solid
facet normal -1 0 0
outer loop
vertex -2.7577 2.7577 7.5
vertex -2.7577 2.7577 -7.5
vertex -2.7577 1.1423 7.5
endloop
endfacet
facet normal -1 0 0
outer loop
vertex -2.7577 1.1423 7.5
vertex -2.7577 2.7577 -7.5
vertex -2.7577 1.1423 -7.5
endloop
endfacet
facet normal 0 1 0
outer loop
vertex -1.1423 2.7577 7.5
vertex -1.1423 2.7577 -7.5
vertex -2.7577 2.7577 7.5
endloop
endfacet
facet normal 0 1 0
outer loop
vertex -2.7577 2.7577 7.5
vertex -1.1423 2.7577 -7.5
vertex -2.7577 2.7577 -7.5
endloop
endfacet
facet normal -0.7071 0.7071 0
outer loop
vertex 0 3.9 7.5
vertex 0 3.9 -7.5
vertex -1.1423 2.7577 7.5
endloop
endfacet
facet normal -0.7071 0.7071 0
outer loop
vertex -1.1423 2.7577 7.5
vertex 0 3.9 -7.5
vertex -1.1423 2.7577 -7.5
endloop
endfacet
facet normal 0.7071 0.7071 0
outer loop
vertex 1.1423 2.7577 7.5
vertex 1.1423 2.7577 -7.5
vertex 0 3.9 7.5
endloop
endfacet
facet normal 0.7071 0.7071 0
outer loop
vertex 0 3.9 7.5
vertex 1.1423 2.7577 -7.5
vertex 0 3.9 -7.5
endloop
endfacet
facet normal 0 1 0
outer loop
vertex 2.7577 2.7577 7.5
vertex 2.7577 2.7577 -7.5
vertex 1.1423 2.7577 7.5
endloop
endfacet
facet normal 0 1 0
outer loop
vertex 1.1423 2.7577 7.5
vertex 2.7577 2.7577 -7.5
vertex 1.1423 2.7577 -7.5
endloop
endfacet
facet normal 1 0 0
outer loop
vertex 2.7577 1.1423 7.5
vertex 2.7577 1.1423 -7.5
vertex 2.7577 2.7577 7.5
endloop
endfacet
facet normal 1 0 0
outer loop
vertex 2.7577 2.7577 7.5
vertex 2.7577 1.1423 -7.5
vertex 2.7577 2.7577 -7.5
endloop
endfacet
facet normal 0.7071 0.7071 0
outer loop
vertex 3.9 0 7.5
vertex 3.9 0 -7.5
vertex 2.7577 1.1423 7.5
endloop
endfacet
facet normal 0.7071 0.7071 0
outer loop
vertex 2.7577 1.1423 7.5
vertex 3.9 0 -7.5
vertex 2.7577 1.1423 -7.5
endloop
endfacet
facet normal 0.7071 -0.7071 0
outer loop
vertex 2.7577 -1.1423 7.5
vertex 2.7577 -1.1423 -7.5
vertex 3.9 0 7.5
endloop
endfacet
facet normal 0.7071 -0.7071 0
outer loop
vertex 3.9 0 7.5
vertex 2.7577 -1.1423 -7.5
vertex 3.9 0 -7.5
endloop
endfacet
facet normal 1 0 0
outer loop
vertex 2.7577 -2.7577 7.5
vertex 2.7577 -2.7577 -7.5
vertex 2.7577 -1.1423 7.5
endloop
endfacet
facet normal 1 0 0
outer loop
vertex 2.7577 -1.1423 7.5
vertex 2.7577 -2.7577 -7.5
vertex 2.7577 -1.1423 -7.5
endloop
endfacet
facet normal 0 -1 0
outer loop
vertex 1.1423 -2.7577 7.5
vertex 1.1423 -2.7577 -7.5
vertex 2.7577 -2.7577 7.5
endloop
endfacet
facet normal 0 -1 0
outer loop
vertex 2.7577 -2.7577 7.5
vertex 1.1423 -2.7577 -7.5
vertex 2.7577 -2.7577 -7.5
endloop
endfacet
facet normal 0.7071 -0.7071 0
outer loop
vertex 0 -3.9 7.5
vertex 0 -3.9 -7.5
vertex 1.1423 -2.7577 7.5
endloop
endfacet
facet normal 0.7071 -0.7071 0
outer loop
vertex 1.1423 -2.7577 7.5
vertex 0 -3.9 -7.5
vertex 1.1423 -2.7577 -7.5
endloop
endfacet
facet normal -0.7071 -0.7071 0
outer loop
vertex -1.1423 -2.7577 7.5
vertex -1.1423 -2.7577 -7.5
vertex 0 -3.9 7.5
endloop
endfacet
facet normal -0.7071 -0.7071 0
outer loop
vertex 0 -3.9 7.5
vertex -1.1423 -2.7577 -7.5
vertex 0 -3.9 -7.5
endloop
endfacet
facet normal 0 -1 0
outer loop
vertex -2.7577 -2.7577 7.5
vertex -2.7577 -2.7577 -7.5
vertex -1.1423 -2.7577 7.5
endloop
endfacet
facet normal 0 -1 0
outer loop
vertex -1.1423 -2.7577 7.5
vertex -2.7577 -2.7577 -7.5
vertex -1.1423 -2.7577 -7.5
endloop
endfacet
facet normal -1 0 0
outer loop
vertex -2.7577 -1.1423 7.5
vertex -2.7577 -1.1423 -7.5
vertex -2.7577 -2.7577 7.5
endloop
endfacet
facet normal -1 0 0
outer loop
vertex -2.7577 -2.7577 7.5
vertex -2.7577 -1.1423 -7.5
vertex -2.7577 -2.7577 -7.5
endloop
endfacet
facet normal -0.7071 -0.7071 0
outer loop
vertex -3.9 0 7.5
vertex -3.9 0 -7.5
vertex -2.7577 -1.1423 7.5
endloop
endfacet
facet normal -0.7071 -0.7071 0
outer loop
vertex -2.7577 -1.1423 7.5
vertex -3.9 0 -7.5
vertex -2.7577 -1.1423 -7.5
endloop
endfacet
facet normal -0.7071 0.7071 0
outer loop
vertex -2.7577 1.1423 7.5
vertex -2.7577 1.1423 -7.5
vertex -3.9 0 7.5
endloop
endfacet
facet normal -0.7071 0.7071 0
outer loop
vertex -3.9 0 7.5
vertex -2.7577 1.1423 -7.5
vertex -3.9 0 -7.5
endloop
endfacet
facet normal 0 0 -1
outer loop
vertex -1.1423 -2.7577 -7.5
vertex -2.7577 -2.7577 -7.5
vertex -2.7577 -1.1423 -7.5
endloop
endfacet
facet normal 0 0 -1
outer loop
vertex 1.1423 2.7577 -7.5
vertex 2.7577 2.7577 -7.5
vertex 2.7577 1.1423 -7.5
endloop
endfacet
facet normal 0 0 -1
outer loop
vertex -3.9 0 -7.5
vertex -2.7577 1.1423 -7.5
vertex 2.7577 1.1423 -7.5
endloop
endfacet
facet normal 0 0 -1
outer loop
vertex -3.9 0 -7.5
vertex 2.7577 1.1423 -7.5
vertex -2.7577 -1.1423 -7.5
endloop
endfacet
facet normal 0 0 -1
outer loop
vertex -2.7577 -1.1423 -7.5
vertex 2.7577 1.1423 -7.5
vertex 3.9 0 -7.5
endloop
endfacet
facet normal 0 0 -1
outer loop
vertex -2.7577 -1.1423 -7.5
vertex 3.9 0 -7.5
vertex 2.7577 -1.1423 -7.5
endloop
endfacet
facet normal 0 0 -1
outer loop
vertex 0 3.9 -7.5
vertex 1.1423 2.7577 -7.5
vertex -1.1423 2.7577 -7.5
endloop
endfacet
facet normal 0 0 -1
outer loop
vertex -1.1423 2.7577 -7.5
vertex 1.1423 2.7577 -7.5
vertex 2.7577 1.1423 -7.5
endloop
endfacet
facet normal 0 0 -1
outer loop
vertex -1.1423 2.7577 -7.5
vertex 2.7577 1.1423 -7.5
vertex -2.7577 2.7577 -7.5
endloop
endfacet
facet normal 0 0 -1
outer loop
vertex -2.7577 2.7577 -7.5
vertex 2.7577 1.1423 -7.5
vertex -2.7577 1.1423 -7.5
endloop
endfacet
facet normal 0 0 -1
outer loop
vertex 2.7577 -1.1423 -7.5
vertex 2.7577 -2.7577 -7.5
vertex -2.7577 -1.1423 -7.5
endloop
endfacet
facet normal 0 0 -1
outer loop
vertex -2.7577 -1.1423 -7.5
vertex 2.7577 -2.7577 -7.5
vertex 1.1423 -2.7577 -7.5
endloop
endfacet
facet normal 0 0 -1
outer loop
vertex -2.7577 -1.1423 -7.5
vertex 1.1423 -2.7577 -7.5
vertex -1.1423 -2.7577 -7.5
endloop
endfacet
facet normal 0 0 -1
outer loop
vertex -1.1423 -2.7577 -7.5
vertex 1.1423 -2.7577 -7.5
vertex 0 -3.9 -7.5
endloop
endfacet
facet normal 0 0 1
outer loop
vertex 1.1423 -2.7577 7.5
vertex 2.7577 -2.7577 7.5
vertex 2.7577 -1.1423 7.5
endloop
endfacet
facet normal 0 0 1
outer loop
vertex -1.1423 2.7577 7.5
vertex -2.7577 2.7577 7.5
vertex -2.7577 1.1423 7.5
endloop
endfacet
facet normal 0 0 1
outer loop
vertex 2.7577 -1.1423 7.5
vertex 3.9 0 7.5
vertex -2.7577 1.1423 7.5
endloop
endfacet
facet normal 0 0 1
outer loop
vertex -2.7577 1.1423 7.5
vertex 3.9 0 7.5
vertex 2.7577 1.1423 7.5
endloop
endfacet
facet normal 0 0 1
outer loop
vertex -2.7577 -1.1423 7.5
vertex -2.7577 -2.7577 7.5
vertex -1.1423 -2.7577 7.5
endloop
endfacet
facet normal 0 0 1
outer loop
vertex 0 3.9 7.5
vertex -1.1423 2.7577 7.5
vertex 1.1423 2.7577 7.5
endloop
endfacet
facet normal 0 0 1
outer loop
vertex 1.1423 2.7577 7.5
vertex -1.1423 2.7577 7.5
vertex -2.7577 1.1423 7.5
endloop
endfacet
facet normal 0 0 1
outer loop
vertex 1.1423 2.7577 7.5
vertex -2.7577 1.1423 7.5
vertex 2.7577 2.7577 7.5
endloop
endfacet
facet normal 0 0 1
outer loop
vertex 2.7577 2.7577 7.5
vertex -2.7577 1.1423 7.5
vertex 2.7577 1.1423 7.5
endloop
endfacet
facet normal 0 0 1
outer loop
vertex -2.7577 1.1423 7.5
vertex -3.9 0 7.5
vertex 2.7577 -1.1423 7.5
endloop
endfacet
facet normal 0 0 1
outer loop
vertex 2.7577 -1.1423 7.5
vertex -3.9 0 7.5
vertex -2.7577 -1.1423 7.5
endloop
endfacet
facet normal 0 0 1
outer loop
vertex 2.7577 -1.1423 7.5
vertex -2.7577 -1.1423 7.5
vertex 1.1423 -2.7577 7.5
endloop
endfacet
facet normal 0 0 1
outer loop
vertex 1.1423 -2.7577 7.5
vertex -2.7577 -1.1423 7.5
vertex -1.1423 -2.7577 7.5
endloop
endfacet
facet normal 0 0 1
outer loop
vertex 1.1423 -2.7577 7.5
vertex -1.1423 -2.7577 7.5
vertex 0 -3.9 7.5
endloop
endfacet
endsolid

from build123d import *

# Parameters (mm, degrees)
BOSS_EXTRUDE1_DEPTH      = 7.5
BOSS_EXTRUDE1_DEPTH_BACK = 7.5


with BuildPart() as part:
    # Sketch1 → Boss-Extrude1 (new, two sides: drawn at the far end of the back side and taken through both)
    with BuildSketch(Plane.XY.offset(-BOSS_EXTRUDE1_DEPTH_BACK)):
        Polygon((0, 3.9), (1.142283553, 2.757716447), (2.757716447, 2.757716447), (2.757716447, 1.142283553), (3.9, 0), (2.757716447, -1.142283553), (2.757716447, -2.757716447), (1.142283553, -2.757716447), (0, -3.9), (-1.142283553, -2.757716447), (-2.757716447, -2.757716447), (-2.757716447, -1.142283553), (-3.9, 0), (-2.757716447, 1.142283553), (-2.757716447, 2.757716447), (-1.142283553, 2.757716447), align=None)
    extrude(amount=BOSS_EXTRUDE1_DEPTH + BOSS_EXTRUDE1_DEPTH_BACK)


solid = part.part
